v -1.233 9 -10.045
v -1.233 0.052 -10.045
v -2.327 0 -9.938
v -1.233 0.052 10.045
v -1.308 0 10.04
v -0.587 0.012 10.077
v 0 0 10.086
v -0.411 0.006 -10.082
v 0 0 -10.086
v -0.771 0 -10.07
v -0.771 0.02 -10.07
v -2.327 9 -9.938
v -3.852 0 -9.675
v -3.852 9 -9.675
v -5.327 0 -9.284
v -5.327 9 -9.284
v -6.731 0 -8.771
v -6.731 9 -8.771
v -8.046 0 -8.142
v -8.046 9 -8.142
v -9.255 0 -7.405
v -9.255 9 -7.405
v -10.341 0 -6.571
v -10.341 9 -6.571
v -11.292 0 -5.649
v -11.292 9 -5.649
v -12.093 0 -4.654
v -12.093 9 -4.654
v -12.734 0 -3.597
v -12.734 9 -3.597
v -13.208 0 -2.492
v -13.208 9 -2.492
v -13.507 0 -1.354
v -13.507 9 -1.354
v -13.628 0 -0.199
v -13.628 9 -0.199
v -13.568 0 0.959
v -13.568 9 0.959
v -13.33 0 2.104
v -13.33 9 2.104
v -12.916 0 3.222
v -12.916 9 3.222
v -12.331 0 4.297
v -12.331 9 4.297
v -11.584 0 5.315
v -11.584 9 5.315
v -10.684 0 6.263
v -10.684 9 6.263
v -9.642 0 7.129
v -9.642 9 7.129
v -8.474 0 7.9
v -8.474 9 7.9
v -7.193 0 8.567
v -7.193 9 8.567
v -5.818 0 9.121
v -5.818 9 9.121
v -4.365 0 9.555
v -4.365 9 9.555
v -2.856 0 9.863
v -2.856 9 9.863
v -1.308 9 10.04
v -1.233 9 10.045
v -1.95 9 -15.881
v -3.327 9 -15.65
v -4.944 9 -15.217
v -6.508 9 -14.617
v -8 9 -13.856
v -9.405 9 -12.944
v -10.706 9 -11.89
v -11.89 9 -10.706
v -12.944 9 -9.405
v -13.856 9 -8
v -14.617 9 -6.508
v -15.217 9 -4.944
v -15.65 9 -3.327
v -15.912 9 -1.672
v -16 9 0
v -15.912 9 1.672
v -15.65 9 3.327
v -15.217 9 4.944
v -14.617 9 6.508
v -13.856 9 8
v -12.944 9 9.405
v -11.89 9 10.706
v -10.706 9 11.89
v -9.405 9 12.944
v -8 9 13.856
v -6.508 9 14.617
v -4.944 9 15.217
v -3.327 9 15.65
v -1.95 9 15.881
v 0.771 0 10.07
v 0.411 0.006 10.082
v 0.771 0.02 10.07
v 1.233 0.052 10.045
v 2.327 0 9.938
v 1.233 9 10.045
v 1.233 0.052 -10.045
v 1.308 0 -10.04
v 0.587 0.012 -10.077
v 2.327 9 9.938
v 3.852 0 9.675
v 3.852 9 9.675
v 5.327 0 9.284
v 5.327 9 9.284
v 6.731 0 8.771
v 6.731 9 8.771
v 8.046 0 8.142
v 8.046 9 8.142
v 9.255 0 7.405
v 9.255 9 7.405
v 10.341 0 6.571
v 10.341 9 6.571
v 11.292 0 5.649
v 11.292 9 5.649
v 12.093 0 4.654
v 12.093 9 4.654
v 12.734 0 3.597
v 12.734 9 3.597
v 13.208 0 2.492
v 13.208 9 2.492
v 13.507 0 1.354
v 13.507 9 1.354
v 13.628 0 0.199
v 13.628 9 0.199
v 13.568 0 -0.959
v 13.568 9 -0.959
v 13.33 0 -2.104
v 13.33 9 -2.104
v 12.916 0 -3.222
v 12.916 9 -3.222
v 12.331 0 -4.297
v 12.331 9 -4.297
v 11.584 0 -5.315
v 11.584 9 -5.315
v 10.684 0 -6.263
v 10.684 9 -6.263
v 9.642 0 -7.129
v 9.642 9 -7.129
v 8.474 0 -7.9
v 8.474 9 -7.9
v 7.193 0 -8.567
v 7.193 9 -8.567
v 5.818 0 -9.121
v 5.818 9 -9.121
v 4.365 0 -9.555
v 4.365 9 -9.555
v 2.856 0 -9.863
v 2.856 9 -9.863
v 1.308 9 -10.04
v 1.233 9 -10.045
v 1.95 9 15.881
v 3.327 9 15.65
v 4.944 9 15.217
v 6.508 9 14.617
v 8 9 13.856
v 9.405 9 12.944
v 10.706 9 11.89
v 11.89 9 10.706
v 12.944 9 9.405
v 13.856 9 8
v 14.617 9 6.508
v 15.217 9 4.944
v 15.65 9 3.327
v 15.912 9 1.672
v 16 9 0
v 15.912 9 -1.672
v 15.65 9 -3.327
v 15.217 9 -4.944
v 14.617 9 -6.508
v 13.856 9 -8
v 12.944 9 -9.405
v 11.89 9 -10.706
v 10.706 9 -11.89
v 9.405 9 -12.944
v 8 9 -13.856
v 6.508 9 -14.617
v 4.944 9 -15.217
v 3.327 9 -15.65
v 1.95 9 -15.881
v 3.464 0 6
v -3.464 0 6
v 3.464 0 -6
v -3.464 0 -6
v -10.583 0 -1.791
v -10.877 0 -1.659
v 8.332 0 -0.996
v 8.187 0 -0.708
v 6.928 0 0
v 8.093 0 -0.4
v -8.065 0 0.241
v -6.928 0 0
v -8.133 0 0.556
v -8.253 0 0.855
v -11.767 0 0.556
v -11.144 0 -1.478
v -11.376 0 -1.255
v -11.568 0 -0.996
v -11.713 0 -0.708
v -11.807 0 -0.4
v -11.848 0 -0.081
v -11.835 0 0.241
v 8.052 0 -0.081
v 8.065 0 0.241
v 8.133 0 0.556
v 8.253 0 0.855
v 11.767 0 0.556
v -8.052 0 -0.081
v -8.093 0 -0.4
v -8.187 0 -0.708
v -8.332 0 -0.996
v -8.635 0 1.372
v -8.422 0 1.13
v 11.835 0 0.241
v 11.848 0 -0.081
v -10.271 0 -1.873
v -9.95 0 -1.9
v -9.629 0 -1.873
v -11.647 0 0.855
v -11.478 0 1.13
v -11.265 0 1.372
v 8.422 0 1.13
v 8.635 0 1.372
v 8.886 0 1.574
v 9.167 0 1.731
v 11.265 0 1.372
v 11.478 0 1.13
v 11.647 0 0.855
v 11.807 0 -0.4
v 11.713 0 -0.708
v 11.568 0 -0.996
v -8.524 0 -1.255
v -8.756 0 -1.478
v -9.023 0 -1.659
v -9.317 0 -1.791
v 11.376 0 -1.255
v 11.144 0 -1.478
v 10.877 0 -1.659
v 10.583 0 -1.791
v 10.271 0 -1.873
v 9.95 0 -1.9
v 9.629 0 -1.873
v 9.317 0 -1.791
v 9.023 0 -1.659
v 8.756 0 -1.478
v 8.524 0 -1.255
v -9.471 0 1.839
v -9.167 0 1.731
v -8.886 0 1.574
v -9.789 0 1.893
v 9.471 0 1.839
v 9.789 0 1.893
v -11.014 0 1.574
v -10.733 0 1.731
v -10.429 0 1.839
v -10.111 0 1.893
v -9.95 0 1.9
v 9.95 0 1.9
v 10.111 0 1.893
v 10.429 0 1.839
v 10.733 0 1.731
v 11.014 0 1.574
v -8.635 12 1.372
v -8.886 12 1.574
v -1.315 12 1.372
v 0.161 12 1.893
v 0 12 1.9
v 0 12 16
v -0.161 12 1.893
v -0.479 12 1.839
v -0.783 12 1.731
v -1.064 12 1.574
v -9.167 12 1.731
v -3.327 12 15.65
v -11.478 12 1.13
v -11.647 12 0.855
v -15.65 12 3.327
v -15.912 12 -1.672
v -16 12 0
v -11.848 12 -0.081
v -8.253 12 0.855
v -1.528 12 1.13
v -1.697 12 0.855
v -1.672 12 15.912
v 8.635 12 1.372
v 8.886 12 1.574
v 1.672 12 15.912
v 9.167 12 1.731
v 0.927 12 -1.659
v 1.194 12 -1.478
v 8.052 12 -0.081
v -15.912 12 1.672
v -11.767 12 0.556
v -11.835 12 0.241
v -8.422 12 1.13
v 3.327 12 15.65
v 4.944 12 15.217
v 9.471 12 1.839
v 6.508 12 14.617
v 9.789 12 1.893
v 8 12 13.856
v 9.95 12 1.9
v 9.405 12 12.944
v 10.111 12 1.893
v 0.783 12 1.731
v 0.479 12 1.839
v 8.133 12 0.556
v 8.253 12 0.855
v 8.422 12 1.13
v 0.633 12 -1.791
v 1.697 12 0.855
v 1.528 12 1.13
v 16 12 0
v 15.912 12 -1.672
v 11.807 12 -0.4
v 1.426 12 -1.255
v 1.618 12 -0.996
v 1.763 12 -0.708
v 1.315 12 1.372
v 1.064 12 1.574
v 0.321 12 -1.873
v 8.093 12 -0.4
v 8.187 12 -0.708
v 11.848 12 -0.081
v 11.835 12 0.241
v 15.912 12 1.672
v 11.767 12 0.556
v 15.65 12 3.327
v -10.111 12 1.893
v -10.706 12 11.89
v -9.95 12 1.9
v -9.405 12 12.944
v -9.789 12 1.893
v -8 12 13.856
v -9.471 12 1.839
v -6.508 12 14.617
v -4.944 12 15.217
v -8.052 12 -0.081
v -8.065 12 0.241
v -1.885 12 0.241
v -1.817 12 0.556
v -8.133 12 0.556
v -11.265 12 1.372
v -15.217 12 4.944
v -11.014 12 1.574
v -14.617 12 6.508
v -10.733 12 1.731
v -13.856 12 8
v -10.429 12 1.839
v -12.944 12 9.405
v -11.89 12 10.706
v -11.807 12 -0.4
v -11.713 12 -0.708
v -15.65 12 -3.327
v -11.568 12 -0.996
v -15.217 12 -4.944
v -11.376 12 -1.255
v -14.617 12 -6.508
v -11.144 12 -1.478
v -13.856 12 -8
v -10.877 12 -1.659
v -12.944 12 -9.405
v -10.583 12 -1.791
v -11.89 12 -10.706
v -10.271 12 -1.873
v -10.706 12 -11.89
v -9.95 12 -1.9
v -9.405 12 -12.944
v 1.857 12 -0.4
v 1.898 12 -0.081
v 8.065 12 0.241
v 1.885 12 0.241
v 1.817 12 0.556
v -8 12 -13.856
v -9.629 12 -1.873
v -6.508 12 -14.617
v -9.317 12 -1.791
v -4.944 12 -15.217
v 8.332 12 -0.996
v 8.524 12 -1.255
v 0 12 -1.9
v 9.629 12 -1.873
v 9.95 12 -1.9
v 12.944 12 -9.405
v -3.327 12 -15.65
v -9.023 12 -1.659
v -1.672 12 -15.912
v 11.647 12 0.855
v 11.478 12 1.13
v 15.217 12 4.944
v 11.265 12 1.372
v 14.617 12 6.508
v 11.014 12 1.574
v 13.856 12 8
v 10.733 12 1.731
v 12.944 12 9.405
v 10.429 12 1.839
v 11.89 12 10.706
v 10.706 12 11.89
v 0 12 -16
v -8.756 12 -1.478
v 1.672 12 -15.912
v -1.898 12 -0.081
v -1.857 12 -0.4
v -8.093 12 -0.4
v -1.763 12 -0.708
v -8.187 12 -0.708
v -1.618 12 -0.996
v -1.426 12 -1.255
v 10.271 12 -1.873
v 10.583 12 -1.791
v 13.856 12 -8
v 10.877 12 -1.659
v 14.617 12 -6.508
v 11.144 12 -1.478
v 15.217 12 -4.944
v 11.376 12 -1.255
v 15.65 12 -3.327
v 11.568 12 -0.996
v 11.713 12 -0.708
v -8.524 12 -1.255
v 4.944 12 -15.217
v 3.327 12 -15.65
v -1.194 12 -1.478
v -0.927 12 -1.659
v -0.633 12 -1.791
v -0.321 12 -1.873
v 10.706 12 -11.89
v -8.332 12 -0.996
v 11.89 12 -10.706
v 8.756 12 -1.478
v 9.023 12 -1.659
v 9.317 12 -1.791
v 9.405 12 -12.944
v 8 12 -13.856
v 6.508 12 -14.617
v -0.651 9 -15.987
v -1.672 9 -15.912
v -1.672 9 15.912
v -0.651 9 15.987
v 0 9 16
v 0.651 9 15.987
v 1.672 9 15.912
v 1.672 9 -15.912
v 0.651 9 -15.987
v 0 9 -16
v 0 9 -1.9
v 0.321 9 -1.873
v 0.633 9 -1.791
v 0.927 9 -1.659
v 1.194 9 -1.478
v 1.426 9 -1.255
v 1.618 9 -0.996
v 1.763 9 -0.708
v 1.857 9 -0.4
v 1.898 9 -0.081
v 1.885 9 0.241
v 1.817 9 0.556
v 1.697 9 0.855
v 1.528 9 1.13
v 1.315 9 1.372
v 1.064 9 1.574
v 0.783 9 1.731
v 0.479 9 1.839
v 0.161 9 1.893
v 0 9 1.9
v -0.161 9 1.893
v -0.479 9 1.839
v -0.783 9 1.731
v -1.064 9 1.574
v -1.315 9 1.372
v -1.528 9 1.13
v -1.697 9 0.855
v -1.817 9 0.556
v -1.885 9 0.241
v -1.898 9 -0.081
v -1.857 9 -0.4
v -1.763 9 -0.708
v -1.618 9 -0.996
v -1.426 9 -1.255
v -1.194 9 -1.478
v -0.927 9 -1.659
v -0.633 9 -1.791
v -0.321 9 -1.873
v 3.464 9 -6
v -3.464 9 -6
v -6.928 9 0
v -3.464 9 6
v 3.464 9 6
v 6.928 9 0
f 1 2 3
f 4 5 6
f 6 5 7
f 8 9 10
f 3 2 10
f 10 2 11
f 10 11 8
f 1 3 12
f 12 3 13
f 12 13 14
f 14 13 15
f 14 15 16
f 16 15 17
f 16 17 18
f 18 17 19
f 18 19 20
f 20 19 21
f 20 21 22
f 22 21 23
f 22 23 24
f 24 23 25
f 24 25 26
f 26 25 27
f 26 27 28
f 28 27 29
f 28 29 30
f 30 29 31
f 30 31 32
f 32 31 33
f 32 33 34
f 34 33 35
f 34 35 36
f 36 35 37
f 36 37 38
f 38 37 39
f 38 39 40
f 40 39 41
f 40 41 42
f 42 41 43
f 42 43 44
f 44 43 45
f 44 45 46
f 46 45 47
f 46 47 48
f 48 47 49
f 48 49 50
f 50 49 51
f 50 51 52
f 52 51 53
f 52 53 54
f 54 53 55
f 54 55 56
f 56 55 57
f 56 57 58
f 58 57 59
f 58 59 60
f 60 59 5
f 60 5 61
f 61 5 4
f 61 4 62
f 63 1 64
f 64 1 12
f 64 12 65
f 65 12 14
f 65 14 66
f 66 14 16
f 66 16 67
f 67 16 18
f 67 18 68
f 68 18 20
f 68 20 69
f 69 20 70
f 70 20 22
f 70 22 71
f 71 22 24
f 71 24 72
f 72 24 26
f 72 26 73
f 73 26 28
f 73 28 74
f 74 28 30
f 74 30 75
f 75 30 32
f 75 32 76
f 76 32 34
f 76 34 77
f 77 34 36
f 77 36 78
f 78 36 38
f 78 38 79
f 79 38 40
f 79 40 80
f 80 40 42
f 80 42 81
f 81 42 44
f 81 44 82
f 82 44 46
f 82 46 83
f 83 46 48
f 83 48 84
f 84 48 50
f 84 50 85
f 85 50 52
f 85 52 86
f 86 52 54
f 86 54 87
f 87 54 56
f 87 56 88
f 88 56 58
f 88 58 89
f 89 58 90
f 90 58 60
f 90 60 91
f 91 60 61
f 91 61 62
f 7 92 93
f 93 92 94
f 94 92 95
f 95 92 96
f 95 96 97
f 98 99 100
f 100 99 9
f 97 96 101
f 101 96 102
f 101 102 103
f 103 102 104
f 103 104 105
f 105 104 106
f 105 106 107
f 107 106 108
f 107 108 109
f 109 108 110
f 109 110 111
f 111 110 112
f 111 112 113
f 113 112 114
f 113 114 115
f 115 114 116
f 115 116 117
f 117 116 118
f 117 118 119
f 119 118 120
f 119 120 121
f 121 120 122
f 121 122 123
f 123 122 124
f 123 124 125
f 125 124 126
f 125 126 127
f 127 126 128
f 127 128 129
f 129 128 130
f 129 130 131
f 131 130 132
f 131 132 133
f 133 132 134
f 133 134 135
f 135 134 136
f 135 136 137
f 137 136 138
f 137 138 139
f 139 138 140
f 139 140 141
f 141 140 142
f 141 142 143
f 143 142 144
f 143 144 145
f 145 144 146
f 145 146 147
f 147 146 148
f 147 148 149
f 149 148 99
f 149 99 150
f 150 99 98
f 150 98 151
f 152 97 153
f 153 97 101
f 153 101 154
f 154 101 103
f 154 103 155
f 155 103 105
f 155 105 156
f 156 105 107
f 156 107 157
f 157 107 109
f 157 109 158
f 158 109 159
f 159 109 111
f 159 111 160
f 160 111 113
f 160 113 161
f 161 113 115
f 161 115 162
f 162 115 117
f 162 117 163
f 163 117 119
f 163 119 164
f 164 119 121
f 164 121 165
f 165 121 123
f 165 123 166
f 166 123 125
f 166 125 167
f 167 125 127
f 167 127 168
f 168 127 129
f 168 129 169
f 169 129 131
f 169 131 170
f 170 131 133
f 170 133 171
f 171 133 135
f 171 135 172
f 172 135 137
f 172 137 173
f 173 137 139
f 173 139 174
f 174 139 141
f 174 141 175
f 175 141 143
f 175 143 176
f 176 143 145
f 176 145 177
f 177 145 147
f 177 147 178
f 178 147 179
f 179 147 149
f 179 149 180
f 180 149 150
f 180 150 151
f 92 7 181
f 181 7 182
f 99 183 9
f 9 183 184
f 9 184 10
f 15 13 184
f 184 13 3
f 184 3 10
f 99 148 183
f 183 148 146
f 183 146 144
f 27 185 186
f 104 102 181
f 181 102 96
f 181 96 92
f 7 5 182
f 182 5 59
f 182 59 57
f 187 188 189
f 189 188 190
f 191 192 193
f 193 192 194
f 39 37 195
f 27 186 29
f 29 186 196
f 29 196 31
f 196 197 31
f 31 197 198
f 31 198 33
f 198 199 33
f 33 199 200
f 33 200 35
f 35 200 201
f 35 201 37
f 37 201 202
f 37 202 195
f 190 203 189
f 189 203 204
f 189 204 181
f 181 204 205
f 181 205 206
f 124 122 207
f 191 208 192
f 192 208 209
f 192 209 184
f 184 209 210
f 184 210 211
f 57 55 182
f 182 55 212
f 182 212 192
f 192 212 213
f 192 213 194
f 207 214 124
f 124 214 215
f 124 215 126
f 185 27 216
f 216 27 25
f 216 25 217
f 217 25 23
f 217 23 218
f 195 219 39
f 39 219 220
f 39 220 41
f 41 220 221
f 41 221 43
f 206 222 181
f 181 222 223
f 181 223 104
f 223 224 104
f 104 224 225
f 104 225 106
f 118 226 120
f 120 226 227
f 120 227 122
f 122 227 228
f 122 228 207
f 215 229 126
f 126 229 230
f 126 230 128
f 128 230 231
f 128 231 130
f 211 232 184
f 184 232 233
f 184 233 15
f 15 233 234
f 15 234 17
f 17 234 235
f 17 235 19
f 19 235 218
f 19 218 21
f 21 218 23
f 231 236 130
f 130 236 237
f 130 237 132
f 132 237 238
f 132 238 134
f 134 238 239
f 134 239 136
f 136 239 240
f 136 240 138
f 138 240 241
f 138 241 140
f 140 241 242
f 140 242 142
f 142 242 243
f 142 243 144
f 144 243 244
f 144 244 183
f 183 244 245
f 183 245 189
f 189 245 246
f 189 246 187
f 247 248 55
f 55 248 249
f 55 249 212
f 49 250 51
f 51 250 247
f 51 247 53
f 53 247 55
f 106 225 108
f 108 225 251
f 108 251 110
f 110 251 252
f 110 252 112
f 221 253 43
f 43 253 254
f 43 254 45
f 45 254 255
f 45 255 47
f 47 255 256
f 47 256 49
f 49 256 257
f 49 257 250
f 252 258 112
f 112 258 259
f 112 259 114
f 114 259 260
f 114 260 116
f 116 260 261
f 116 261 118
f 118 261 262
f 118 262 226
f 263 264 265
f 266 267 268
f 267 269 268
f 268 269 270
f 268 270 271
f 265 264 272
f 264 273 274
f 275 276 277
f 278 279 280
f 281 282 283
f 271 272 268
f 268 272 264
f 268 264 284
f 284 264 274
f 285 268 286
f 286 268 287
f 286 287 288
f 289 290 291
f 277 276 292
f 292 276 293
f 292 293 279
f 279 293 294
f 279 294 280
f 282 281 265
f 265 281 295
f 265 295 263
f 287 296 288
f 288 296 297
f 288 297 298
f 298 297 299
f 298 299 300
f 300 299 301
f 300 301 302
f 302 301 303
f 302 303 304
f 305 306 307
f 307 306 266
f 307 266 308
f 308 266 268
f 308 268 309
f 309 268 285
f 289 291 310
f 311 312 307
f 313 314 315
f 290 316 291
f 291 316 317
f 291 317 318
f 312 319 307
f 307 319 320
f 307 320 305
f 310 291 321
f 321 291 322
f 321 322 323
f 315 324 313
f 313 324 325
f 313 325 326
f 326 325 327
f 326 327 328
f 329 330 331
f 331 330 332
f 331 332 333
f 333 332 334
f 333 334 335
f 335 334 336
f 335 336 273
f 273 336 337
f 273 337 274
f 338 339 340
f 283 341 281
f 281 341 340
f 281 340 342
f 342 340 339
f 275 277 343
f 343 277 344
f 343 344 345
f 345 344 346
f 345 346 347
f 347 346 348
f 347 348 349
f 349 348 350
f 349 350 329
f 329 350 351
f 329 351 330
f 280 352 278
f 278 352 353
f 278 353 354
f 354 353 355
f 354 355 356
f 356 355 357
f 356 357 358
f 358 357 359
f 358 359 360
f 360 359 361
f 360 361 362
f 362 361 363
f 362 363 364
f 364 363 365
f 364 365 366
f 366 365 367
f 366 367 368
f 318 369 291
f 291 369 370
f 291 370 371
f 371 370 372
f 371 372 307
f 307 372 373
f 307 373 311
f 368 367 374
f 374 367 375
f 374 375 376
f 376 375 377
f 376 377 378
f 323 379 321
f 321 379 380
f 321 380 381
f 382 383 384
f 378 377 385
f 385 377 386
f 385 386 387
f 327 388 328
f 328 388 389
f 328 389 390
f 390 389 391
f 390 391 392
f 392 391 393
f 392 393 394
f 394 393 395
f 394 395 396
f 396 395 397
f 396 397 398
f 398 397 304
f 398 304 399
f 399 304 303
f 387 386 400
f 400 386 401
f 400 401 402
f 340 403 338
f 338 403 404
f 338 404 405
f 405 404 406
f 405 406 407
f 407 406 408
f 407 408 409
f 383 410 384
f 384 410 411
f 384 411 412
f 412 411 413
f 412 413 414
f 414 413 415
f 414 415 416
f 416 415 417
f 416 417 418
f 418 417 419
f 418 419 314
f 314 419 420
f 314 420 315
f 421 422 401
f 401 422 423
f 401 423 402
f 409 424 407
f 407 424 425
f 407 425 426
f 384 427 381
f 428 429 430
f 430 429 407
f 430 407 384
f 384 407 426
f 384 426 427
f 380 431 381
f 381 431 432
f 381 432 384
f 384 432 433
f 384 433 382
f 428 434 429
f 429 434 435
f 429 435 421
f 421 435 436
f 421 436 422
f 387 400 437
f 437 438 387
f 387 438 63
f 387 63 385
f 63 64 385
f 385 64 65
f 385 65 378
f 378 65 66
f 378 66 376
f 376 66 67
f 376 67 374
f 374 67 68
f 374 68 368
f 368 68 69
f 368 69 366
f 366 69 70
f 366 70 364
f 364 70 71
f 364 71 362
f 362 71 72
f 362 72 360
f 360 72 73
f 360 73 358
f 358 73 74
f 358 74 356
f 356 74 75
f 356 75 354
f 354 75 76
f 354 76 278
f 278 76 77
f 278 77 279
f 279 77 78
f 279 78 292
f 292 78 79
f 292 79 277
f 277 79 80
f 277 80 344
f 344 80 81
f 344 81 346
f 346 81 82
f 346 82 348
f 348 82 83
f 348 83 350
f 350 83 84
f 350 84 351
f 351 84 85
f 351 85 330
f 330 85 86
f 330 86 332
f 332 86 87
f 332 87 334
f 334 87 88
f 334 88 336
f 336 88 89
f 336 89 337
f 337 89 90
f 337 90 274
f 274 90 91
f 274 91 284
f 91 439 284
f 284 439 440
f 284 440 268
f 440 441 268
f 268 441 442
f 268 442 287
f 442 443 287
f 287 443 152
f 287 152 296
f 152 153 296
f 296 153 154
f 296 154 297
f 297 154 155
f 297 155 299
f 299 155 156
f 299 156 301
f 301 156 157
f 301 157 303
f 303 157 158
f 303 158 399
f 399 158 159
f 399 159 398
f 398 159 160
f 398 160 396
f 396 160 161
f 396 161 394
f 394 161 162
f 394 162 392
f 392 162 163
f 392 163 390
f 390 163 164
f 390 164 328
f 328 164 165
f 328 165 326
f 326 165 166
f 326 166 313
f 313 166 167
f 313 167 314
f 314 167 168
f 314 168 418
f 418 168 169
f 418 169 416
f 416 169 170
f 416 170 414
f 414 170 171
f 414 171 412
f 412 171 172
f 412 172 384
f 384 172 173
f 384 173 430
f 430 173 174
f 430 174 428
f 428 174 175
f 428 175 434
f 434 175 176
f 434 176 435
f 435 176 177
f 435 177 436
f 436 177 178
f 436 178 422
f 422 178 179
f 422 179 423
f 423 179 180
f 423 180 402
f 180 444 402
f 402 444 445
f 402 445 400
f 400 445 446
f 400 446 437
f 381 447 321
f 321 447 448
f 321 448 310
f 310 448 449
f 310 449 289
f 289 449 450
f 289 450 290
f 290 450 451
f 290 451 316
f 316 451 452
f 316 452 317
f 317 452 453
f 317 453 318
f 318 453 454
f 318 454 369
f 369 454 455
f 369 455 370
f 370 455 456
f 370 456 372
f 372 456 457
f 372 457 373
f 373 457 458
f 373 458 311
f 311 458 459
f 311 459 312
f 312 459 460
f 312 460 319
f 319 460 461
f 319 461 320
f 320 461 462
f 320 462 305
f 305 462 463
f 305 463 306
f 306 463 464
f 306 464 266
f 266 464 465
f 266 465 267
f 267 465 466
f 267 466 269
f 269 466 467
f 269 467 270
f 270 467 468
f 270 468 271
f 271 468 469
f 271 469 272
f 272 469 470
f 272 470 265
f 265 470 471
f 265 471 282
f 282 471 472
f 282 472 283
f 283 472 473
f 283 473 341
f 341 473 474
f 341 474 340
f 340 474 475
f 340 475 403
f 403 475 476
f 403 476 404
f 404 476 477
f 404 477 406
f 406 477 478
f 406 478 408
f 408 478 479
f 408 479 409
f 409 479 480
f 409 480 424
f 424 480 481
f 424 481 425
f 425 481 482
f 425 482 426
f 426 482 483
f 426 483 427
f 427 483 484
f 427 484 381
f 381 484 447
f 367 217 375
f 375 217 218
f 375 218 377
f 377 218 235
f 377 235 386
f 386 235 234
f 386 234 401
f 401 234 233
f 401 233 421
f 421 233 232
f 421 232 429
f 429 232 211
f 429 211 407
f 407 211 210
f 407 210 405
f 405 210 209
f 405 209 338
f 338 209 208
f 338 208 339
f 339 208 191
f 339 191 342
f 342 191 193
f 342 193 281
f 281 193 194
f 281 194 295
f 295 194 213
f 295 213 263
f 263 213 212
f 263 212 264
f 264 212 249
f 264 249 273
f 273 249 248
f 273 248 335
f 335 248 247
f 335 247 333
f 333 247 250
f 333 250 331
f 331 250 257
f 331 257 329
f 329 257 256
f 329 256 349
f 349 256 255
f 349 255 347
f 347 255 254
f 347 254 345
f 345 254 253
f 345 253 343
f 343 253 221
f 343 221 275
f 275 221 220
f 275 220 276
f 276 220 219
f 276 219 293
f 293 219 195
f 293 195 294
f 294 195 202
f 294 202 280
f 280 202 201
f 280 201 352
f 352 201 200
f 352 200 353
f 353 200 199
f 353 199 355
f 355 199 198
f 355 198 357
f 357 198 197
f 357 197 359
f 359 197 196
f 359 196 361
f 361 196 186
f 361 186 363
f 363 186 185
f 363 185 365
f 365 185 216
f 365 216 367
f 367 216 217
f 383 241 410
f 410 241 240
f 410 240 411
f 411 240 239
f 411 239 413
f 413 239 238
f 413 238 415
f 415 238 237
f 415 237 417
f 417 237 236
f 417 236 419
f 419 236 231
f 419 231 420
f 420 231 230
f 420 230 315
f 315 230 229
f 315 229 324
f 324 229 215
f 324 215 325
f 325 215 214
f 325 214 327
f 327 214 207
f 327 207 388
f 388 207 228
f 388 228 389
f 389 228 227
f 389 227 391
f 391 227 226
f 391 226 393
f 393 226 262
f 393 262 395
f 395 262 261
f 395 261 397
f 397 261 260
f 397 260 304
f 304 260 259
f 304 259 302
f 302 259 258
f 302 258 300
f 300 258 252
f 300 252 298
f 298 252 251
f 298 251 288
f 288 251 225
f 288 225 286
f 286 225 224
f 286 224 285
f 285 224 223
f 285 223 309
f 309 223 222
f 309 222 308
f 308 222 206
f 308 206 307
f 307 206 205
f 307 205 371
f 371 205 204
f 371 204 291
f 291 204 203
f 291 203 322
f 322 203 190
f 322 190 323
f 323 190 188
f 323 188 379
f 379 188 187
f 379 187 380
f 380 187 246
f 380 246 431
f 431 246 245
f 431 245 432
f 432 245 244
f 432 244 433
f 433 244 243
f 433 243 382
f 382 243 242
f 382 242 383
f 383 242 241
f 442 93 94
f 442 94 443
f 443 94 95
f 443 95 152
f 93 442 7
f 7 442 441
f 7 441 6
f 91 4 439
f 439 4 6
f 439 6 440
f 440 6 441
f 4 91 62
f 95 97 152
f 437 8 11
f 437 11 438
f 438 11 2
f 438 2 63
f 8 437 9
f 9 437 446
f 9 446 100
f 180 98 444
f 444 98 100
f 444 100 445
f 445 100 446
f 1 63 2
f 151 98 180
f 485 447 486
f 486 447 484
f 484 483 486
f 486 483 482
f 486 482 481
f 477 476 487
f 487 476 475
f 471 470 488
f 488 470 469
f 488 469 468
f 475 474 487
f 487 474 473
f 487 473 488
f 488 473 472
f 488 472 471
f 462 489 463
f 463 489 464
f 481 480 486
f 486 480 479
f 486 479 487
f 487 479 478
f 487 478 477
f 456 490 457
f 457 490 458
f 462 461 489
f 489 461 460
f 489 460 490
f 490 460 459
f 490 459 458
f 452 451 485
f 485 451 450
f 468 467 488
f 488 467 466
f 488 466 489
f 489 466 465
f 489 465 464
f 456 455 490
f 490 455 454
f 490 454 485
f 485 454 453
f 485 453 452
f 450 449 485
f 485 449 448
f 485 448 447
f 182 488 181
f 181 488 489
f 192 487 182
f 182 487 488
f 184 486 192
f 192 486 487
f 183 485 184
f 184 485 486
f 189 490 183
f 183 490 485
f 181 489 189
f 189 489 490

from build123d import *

# Parameters (mm, degrees)
SKETCH1_R           = 16
SKETCH1_R_2         = 1.9
BOSS_EXTRUDE1_DEPTH = 12
SKETCH3_R           = 16
SKETCH3_RX          = 13.630217139
SKETCH3_RY          = 10.086360683
CUT_EXTRUDE2_DEPTH  = 9
REVOLVE1_ANGLE      = 14
CUT_EXTRUDE3_DEPTH  = 9


# Read off the part's stored shape, not the designer's step: Revolve1
with BuildPart() as part:
    # Sketch1 → Boss-Extrude1 (new body)
    with BuildSketch(Plane(origin=(0, 0, 0), x_dir=(1, 0, 0), z_dir=(0, 1, 0))):
        with Locations(Location((0, 0, 0), (0, 0, 270))):
            Circle(SKETCH1_R)
        with Locations(Location((-9.95, 0, 0), (0, 0, 270))):
            Circle(SKETCH1_R_2, mode=Mode.SUBTRACT)
        with Locations(Location((9.95, 0, 0), (0, 0, 270))):
            Circle(SKETCH1_R_2, mode=Mode.SUBTRACT)
        with Locations(Location((0, 0, 0), (0, 0, 270))):
            Circle(SKETCH1_R_2, mode=Mode.SUBTRACT)
    extrude(amount=BOSS_EXTRUDE1_DEPTH)

    # Sketch3 → Cut-Extrude2 (cut)
    with BuildSketch(Plane.XZ):
        with Locations(Location((0, 0, 0), (0, 0, 90))):
            Circle(SKETCH3_R)
        with Locations(Location((0, 0), (0, 0, 180))):
            Ellipse(SKETCH3_RX, SKETCH3_RY, mode=Mode.SUBTRACT)
    extrude(amount=-CUT_EXTRUDE2_DEPTH, mode=Mode.SUBTRACT)

    # Revolve1 outline → Revolve1 (revolve)
    with BuildSketch(Plane(origin=(0, 0, 0), x_dir=(-0.12186934340514781, 0, 0.992546151641322), z_dir=(-0.992546151641322, 0, -0.12186934340514781))):
        Polygon((10.086360682, 9), (10.086360682, -1e-09), (16, 9), align=None)
    revolve1 = revolve(axis=Axis((0, 0, 0), (0, 1, 0)), revolution_arc=REVOLVE1_ANGLE)

    # Mirror1: Revolve1 across plane
    add(revolve1.mirror(Plane.XY))

    # Sketch6 → Cut-Extrude3 (cut)
    with BuildSketch(Plane.XZ):
        Polygon((3.464101615, 6), (-3.464101615, 6), (-6.92820323, 0), (-3.464101615, -6), (3.464101615, -6), (6.92820323, 0), align=None)
    extrude(amount=-CUT_EXTRUDE3_DEPTH, mode=Mode.SUBTRACT)


solid = part.part
